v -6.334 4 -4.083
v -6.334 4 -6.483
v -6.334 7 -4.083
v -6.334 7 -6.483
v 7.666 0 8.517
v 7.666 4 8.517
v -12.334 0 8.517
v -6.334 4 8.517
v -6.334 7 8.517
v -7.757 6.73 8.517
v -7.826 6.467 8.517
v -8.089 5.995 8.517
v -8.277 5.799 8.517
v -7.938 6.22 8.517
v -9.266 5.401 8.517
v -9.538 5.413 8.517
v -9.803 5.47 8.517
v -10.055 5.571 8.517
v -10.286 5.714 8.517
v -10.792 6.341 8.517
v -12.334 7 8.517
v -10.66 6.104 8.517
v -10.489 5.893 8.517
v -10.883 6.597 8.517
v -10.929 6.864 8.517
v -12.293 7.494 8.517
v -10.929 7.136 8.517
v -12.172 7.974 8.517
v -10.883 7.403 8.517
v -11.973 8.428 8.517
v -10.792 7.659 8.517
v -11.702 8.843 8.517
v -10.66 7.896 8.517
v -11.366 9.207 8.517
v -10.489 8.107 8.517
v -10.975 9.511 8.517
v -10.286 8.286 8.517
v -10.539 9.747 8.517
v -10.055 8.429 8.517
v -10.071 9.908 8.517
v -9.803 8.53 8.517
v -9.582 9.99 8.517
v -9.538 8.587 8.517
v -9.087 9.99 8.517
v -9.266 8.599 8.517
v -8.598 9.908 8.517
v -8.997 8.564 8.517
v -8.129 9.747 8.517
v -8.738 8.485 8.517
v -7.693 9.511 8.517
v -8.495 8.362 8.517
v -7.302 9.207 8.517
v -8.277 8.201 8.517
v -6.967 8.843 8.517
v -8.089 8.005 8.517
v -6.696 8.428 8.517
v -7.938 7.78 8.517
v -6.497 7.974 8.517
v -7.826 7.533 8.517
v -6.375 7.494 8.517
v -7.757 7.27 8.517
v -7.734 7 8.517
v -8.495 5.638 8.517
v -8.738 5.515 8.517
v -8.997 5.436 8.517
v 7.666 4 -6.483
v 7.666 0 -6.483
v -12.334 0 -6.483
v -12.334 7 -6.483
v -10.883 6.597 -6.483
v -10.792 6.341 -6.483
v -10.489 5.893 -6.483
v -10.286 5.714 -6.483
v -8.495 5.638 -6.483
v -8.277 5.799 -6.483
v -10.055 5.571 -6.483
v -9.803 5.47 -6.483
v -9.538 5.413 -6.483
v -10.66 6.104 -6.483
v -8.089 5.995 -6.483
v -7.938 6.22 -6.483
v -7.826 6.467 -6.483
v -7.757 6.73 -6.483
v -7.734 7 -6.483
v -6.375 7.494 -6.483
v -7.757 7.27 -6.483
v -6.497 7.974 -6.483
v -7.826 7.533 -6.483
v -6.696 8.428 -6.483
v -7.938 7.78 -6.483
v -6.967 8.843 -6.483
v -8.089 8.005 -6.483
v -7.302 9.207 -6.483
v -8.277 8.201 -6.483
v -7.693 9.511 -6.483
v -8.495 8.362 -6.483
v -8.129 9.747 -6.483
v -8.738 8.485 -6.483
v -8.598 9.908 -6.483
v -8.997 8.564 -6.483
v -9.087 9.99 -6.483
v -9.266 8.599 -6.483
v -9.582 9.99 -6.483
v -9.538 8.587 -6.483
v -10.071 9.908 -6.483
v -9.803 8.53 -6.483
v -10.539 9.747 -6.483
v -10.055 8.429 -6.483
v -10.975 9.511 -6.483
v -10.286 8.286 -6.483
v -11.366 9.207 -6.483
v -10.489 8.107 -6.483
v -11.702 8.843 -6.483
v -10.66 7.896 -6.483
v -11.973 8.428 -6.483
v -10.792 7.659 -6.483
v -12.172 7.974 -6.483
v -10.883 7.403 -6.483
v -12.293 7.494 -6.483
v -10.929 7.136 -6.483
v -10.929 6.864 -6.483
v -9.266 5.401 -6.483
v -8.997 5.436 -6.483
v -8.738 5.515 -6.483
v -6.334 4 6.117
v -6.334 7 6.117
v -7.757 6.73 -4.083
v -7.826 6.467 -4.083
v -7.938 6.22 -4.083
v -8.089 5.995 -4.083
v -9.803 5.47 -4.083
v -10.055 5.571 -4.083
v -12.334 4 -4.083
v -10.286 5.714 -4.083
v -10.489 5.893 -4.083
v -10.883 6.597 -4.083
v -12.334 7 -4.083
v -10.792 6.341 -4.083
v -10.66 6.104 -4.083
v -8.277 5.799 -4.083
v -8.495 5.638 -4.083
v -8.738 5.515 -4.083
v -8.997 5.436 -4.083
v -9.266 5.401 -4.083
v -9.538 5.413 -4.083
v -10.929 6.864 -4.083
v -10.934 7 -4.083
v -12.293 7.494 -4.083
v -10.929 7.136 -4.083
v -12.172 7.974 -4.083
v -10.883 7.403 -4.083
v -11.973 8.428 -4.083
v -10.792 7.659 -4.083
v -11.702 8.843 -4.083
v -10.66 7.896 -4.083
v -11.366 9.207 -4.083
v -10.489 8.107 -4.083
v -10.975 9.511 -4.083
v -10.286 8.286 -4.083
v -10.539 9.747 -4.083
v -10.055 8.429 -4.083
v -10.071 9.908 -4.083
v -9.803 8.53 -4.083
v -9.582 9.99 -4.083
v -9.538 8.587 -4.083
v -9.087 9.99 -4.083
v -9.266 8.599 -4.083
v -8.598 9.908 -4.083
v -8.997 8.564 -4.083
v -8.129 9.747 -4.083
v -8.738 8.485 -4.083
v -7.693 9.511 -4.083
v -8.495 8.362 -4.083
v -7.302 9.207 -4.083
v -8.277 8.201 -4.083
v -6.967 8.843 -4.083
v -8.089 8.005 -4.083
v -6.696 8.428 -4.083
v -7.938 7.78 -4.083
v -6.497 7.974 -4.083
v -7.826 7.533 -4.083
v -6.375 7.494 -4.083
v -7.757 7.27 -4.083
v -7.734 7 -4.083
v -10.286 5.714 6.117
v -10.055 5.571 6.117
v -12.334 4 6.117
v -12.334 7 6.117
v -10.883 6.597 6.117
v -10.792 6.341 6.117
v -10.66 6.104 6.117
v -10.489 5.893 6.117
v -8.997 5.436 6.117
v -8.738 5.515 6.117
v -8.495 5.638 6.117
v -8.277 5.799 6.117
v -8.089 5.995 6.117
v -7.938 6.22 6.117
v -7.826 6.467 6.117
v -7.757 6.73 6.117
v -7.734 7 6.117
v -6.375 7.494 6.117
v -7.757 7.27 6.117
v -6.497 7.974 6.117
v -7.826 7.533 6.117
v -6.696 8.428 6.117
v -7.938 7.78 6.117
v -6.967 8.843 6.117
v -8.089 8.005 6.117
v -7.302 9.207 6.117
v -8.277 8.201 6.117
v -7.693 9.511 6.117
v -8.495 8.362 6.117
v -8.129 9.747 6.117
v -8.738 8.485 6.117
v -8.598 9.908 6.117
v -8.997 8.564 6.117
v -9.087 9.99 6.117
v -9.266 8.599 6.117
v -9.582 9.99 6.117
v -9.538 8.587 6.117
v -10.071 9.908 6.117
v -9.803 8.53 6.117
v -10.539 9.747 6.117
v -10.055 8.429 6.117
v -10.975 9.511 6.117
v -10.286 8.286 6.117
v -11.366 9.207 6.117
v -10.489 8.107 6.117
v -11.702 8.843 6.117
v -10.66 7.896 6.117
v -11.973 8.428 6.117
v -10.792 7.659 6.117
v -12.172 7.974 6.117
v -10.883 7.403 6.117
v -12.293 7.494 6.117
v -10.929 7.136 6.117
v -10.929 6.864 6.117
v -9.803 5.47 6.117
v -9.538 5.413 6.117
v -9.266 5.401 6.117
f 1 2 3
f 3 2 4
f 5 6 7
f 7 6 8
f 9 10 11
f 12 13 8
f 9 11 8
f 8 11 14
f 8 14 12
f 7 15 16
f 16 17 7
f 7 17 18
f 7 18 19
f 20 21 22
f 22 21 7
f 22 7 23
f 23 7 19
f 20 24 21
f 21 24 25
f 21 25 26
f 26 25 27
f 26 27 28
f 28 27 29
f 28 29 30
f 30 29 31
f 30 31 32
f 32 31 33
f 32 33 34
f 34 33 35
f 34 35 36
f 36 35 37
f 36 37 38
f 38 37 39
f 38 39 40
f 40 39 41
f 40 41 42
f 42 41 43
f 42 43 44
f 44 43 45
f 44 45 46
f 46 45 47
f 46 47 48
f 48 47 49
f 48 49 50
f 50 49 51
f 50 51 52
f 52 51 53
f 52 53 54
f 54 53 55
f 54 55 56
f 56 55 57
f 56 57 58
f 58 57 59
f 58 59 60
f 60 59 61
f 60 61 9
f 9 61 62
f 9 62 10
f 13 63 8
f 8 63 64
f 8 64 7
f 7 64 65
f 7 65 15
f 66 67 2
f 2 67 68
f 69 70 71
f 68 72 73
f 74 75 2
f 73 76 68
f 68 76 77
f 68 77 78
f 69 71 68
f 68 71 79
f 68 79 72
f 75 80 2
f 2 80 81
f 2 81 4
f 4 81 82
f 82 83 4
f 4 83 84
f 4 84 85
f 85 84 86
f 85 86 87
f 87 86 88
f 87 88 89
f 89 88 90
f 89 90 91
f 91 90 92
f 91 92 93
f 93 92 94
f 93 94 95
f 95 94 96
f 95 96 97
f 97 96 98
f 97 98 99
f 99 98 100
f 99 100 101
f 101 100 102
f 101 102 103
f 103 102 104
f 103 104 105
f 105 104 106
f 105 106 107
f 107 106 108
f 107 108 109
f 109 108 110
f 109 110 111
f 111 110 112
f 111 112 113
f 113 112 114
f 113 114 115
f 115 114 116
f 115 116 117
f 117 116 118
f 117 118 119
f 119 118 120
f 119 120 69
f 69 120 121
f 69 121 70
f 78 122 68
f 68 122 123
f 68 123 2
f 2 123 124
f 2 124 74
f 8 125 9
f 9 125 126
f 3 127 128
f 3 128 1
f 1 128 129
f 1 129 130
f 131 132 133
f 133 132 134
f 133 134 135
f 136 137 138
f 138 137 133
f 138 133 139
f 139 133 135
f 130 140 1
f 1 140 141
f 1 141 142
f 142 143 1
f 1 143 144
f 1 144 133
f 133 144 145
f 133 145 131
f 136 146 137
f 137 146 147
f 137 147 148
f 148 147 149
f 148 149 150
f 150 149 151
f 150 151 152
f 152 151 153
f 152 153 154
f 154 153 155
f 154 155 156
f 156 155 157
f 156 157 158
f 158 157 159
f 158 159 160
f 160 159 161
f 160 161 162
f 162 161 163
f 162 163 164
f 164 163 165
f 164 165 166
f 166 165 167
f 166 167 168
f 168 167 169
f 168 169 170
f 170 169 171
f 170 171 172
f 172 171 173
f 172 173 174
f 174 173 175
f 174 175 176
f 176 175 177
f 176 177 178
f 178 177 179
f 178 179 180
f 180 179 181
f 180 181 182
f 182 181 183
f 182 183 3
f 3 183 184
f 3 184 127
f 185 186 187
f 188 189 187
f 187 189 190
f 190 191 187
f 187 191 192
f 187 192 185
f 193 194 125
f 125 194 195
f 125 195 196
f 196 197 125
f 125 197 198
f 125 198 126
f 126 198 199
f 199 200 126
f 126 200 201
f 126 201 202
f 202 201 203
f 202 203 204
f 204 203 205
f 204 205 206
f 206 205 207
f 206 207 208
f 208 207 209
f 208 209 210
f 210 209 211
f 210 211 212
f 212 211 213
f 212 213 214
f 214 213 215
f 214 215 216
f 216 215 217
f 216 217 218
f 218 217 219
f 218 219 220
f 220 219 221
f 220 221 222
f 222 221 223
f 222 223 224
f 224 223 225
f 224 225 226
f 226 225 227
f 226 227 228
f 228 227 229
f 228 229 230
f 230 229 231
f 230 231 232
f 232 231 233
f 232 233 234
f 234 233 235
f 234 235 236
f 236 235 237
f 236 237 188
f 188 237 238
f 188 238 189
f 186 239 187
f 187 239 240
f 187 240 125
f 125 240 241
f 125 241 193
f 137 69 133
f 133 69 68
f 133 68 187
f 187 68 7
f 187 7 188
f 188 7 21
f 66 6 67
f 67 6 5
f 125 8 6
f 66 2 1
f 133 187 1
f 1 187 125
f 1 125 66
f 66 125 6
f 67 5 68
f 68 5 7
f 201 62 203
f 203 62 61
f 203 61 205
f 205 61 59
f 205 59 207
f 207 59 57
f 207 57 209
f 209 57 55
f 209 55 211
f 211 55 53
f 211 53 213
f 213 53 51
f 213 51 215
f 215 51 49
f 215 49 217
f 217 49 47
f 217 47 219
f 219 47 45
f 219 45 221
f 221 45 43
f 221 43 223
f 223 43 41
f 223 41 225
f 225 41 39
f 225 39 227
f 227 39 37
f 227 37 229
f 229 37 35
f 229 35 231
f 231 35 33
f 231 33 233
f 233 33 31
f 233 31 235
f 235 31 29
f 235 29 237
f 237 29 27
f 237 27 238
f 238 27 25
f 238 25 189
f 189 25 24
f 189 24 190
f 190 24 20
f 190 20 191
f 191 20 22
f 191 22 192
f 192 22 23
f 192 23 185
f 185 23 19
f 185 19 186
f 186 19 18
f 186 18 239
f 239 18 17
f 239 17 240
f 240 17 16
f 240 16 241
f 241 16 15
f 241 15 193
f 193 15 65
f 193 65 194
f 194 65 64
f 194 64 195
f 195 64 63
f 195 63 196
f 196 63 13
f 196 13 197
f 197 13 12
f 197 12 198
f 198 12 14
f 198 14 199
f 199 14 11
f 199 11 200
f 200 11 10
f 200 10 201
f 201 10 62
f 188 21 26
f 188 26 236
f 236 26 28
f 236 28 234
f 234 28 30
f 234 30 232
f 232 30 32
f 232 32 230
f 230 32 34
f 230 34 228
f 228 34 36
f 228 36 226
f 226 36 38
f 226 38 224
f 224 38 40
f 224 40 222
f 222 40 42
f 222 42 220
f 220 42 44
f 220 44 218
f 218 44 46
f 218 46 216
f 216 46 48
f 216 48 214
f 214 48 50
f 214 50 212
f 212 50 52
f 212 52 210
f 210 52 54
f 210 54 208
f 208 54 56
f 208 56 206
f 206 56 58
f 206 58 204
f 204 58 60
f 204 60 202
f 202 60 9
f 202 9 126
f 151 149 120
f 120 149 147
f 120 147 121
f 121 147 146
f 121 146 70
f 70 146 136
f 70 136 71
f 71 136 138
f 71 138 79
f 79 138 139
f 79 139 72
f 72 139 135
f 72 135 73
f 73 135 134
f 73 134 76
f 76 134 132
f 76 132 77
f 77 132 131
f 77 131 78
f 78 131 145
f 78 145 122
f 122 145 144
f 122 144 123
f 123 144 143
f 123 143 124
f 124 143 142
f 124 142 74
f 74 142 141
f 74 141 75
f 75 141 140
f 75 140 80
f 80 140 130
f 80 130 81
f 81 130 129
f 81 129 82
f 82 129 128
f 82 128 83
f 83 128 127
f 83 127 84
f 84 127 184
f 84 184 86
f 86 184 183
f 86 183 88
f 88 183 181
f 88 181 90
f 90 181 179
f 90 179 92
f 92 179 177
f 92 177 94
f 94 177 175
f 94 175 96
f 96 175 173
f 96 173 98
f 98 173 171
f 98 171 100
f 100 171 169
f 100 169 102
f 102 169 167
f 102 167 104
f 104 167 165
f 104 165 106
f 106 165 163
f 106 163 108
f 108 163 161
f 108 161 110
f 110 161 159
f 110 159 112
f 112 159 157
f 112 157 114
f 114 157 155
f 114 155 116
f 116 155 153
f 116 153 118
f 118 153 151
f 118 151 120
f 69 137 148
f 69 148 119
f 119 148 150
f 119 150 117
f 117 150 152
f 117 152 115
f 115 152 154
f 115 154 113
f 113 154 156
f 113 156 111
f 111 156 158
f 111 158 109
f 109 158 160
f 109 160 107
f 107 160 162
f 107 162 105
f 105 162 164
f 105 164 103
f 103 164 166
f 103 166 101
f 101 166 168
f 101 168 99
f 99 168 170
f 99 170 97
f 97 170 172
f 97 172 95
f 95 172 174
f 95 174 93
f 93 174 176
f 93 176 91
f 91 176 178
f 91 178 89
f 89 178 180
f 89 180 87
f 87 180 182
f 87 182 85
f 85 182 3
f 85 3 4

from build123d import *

# Parameters (mm, degrees)
SKETCH_1_W          = 20
SKETCH_1_H          = 15
EXTRUDE_2_DEPTH     = 4
SKETCH_3_W          = 6
SKETCH_3_H          = 15
EXTRUDE_3_DEPTH     = 6
SKETCH_4_W          = 6
SKETCH_4_H          = 10.2
CUT_EXTRUDE_1_DEPTH = 6
SKETCH_5_R          = 1.6
CUT_EXTRUDE_2_DEPTH = 21


with BuildPart() as part:
    # 草图1 → 凸台-拉伸2 (new body)
    with BuildSketch(Plane(origin=(0, 0, 0), x_dir=(1, 0, 0), z_dir=(0, 1, 0))):
        with Locations((-2.334337349, -1.016566265)):
            Rectangle(SKETCH_1_W, SKETCH_1_H)
    extrude(amount=EXTRUDE_2_DEPTH)

    # 草图3 → 凸台-拉伸3 (add)
    with BuildSketch(Plane(origin=(0, 4, 0), x_dir=(1, 0, 0), z_dir=(0, 1, 0))):
        with Locations((-9.334337349, -1.016566265)):
            Rectangle(SKETCH_3_W, SKETCH_3_H)
    extrude(amount=EXTRUDE_3_DEPTH)

    # 草图4 → 切除-拉伸1 (cut)
    with BuildSketch(Plane(origin=(0, 10, 0), x_dir=(1, 0, 0), z_dir=(0, 1, 0))):
        with Locations((-9.334337349, -1.016566265)):
            Rectangle(SKETCH_4_W, SKETCH_4_H)
    extrude(amount=-CUT_EXTRUDE_1_DEPTH, mode=Mode.SUBTRACT)

    # 草图5 → 切除-拉伸2 (cut)
    with BuildSketch(Plane.XY.offset(8.516566265)):
        with Locations((-9.334337349, 7)):
            Circle(SKETCH_5_R)
        with BuildLine():
            Line((-9.334337349, 10), (-12.334337349, 10))
            Line((-12.334337349, 10), (-12.334337349, 7))
            ThreePointArc((-12.334337349, 7), (-11.455657693, 9.121320344), (-9.334337349, 10))
        make_face()
        with BuildLine():
            Line((-6.334337349, 10), (-9.334337349, 10))
            ThreePointArc((-9.334337349, 10), (-7.213017006, 9.121320344), (-6.334337349, 7))
            Line((-6.334337349, 7), (-6.334337349, 10))
        make_face()
    extrude(amount=-CUT_EXTRUDE_2_DEPTH, mode=Mode.SUBTRACT)


solid = part.part
